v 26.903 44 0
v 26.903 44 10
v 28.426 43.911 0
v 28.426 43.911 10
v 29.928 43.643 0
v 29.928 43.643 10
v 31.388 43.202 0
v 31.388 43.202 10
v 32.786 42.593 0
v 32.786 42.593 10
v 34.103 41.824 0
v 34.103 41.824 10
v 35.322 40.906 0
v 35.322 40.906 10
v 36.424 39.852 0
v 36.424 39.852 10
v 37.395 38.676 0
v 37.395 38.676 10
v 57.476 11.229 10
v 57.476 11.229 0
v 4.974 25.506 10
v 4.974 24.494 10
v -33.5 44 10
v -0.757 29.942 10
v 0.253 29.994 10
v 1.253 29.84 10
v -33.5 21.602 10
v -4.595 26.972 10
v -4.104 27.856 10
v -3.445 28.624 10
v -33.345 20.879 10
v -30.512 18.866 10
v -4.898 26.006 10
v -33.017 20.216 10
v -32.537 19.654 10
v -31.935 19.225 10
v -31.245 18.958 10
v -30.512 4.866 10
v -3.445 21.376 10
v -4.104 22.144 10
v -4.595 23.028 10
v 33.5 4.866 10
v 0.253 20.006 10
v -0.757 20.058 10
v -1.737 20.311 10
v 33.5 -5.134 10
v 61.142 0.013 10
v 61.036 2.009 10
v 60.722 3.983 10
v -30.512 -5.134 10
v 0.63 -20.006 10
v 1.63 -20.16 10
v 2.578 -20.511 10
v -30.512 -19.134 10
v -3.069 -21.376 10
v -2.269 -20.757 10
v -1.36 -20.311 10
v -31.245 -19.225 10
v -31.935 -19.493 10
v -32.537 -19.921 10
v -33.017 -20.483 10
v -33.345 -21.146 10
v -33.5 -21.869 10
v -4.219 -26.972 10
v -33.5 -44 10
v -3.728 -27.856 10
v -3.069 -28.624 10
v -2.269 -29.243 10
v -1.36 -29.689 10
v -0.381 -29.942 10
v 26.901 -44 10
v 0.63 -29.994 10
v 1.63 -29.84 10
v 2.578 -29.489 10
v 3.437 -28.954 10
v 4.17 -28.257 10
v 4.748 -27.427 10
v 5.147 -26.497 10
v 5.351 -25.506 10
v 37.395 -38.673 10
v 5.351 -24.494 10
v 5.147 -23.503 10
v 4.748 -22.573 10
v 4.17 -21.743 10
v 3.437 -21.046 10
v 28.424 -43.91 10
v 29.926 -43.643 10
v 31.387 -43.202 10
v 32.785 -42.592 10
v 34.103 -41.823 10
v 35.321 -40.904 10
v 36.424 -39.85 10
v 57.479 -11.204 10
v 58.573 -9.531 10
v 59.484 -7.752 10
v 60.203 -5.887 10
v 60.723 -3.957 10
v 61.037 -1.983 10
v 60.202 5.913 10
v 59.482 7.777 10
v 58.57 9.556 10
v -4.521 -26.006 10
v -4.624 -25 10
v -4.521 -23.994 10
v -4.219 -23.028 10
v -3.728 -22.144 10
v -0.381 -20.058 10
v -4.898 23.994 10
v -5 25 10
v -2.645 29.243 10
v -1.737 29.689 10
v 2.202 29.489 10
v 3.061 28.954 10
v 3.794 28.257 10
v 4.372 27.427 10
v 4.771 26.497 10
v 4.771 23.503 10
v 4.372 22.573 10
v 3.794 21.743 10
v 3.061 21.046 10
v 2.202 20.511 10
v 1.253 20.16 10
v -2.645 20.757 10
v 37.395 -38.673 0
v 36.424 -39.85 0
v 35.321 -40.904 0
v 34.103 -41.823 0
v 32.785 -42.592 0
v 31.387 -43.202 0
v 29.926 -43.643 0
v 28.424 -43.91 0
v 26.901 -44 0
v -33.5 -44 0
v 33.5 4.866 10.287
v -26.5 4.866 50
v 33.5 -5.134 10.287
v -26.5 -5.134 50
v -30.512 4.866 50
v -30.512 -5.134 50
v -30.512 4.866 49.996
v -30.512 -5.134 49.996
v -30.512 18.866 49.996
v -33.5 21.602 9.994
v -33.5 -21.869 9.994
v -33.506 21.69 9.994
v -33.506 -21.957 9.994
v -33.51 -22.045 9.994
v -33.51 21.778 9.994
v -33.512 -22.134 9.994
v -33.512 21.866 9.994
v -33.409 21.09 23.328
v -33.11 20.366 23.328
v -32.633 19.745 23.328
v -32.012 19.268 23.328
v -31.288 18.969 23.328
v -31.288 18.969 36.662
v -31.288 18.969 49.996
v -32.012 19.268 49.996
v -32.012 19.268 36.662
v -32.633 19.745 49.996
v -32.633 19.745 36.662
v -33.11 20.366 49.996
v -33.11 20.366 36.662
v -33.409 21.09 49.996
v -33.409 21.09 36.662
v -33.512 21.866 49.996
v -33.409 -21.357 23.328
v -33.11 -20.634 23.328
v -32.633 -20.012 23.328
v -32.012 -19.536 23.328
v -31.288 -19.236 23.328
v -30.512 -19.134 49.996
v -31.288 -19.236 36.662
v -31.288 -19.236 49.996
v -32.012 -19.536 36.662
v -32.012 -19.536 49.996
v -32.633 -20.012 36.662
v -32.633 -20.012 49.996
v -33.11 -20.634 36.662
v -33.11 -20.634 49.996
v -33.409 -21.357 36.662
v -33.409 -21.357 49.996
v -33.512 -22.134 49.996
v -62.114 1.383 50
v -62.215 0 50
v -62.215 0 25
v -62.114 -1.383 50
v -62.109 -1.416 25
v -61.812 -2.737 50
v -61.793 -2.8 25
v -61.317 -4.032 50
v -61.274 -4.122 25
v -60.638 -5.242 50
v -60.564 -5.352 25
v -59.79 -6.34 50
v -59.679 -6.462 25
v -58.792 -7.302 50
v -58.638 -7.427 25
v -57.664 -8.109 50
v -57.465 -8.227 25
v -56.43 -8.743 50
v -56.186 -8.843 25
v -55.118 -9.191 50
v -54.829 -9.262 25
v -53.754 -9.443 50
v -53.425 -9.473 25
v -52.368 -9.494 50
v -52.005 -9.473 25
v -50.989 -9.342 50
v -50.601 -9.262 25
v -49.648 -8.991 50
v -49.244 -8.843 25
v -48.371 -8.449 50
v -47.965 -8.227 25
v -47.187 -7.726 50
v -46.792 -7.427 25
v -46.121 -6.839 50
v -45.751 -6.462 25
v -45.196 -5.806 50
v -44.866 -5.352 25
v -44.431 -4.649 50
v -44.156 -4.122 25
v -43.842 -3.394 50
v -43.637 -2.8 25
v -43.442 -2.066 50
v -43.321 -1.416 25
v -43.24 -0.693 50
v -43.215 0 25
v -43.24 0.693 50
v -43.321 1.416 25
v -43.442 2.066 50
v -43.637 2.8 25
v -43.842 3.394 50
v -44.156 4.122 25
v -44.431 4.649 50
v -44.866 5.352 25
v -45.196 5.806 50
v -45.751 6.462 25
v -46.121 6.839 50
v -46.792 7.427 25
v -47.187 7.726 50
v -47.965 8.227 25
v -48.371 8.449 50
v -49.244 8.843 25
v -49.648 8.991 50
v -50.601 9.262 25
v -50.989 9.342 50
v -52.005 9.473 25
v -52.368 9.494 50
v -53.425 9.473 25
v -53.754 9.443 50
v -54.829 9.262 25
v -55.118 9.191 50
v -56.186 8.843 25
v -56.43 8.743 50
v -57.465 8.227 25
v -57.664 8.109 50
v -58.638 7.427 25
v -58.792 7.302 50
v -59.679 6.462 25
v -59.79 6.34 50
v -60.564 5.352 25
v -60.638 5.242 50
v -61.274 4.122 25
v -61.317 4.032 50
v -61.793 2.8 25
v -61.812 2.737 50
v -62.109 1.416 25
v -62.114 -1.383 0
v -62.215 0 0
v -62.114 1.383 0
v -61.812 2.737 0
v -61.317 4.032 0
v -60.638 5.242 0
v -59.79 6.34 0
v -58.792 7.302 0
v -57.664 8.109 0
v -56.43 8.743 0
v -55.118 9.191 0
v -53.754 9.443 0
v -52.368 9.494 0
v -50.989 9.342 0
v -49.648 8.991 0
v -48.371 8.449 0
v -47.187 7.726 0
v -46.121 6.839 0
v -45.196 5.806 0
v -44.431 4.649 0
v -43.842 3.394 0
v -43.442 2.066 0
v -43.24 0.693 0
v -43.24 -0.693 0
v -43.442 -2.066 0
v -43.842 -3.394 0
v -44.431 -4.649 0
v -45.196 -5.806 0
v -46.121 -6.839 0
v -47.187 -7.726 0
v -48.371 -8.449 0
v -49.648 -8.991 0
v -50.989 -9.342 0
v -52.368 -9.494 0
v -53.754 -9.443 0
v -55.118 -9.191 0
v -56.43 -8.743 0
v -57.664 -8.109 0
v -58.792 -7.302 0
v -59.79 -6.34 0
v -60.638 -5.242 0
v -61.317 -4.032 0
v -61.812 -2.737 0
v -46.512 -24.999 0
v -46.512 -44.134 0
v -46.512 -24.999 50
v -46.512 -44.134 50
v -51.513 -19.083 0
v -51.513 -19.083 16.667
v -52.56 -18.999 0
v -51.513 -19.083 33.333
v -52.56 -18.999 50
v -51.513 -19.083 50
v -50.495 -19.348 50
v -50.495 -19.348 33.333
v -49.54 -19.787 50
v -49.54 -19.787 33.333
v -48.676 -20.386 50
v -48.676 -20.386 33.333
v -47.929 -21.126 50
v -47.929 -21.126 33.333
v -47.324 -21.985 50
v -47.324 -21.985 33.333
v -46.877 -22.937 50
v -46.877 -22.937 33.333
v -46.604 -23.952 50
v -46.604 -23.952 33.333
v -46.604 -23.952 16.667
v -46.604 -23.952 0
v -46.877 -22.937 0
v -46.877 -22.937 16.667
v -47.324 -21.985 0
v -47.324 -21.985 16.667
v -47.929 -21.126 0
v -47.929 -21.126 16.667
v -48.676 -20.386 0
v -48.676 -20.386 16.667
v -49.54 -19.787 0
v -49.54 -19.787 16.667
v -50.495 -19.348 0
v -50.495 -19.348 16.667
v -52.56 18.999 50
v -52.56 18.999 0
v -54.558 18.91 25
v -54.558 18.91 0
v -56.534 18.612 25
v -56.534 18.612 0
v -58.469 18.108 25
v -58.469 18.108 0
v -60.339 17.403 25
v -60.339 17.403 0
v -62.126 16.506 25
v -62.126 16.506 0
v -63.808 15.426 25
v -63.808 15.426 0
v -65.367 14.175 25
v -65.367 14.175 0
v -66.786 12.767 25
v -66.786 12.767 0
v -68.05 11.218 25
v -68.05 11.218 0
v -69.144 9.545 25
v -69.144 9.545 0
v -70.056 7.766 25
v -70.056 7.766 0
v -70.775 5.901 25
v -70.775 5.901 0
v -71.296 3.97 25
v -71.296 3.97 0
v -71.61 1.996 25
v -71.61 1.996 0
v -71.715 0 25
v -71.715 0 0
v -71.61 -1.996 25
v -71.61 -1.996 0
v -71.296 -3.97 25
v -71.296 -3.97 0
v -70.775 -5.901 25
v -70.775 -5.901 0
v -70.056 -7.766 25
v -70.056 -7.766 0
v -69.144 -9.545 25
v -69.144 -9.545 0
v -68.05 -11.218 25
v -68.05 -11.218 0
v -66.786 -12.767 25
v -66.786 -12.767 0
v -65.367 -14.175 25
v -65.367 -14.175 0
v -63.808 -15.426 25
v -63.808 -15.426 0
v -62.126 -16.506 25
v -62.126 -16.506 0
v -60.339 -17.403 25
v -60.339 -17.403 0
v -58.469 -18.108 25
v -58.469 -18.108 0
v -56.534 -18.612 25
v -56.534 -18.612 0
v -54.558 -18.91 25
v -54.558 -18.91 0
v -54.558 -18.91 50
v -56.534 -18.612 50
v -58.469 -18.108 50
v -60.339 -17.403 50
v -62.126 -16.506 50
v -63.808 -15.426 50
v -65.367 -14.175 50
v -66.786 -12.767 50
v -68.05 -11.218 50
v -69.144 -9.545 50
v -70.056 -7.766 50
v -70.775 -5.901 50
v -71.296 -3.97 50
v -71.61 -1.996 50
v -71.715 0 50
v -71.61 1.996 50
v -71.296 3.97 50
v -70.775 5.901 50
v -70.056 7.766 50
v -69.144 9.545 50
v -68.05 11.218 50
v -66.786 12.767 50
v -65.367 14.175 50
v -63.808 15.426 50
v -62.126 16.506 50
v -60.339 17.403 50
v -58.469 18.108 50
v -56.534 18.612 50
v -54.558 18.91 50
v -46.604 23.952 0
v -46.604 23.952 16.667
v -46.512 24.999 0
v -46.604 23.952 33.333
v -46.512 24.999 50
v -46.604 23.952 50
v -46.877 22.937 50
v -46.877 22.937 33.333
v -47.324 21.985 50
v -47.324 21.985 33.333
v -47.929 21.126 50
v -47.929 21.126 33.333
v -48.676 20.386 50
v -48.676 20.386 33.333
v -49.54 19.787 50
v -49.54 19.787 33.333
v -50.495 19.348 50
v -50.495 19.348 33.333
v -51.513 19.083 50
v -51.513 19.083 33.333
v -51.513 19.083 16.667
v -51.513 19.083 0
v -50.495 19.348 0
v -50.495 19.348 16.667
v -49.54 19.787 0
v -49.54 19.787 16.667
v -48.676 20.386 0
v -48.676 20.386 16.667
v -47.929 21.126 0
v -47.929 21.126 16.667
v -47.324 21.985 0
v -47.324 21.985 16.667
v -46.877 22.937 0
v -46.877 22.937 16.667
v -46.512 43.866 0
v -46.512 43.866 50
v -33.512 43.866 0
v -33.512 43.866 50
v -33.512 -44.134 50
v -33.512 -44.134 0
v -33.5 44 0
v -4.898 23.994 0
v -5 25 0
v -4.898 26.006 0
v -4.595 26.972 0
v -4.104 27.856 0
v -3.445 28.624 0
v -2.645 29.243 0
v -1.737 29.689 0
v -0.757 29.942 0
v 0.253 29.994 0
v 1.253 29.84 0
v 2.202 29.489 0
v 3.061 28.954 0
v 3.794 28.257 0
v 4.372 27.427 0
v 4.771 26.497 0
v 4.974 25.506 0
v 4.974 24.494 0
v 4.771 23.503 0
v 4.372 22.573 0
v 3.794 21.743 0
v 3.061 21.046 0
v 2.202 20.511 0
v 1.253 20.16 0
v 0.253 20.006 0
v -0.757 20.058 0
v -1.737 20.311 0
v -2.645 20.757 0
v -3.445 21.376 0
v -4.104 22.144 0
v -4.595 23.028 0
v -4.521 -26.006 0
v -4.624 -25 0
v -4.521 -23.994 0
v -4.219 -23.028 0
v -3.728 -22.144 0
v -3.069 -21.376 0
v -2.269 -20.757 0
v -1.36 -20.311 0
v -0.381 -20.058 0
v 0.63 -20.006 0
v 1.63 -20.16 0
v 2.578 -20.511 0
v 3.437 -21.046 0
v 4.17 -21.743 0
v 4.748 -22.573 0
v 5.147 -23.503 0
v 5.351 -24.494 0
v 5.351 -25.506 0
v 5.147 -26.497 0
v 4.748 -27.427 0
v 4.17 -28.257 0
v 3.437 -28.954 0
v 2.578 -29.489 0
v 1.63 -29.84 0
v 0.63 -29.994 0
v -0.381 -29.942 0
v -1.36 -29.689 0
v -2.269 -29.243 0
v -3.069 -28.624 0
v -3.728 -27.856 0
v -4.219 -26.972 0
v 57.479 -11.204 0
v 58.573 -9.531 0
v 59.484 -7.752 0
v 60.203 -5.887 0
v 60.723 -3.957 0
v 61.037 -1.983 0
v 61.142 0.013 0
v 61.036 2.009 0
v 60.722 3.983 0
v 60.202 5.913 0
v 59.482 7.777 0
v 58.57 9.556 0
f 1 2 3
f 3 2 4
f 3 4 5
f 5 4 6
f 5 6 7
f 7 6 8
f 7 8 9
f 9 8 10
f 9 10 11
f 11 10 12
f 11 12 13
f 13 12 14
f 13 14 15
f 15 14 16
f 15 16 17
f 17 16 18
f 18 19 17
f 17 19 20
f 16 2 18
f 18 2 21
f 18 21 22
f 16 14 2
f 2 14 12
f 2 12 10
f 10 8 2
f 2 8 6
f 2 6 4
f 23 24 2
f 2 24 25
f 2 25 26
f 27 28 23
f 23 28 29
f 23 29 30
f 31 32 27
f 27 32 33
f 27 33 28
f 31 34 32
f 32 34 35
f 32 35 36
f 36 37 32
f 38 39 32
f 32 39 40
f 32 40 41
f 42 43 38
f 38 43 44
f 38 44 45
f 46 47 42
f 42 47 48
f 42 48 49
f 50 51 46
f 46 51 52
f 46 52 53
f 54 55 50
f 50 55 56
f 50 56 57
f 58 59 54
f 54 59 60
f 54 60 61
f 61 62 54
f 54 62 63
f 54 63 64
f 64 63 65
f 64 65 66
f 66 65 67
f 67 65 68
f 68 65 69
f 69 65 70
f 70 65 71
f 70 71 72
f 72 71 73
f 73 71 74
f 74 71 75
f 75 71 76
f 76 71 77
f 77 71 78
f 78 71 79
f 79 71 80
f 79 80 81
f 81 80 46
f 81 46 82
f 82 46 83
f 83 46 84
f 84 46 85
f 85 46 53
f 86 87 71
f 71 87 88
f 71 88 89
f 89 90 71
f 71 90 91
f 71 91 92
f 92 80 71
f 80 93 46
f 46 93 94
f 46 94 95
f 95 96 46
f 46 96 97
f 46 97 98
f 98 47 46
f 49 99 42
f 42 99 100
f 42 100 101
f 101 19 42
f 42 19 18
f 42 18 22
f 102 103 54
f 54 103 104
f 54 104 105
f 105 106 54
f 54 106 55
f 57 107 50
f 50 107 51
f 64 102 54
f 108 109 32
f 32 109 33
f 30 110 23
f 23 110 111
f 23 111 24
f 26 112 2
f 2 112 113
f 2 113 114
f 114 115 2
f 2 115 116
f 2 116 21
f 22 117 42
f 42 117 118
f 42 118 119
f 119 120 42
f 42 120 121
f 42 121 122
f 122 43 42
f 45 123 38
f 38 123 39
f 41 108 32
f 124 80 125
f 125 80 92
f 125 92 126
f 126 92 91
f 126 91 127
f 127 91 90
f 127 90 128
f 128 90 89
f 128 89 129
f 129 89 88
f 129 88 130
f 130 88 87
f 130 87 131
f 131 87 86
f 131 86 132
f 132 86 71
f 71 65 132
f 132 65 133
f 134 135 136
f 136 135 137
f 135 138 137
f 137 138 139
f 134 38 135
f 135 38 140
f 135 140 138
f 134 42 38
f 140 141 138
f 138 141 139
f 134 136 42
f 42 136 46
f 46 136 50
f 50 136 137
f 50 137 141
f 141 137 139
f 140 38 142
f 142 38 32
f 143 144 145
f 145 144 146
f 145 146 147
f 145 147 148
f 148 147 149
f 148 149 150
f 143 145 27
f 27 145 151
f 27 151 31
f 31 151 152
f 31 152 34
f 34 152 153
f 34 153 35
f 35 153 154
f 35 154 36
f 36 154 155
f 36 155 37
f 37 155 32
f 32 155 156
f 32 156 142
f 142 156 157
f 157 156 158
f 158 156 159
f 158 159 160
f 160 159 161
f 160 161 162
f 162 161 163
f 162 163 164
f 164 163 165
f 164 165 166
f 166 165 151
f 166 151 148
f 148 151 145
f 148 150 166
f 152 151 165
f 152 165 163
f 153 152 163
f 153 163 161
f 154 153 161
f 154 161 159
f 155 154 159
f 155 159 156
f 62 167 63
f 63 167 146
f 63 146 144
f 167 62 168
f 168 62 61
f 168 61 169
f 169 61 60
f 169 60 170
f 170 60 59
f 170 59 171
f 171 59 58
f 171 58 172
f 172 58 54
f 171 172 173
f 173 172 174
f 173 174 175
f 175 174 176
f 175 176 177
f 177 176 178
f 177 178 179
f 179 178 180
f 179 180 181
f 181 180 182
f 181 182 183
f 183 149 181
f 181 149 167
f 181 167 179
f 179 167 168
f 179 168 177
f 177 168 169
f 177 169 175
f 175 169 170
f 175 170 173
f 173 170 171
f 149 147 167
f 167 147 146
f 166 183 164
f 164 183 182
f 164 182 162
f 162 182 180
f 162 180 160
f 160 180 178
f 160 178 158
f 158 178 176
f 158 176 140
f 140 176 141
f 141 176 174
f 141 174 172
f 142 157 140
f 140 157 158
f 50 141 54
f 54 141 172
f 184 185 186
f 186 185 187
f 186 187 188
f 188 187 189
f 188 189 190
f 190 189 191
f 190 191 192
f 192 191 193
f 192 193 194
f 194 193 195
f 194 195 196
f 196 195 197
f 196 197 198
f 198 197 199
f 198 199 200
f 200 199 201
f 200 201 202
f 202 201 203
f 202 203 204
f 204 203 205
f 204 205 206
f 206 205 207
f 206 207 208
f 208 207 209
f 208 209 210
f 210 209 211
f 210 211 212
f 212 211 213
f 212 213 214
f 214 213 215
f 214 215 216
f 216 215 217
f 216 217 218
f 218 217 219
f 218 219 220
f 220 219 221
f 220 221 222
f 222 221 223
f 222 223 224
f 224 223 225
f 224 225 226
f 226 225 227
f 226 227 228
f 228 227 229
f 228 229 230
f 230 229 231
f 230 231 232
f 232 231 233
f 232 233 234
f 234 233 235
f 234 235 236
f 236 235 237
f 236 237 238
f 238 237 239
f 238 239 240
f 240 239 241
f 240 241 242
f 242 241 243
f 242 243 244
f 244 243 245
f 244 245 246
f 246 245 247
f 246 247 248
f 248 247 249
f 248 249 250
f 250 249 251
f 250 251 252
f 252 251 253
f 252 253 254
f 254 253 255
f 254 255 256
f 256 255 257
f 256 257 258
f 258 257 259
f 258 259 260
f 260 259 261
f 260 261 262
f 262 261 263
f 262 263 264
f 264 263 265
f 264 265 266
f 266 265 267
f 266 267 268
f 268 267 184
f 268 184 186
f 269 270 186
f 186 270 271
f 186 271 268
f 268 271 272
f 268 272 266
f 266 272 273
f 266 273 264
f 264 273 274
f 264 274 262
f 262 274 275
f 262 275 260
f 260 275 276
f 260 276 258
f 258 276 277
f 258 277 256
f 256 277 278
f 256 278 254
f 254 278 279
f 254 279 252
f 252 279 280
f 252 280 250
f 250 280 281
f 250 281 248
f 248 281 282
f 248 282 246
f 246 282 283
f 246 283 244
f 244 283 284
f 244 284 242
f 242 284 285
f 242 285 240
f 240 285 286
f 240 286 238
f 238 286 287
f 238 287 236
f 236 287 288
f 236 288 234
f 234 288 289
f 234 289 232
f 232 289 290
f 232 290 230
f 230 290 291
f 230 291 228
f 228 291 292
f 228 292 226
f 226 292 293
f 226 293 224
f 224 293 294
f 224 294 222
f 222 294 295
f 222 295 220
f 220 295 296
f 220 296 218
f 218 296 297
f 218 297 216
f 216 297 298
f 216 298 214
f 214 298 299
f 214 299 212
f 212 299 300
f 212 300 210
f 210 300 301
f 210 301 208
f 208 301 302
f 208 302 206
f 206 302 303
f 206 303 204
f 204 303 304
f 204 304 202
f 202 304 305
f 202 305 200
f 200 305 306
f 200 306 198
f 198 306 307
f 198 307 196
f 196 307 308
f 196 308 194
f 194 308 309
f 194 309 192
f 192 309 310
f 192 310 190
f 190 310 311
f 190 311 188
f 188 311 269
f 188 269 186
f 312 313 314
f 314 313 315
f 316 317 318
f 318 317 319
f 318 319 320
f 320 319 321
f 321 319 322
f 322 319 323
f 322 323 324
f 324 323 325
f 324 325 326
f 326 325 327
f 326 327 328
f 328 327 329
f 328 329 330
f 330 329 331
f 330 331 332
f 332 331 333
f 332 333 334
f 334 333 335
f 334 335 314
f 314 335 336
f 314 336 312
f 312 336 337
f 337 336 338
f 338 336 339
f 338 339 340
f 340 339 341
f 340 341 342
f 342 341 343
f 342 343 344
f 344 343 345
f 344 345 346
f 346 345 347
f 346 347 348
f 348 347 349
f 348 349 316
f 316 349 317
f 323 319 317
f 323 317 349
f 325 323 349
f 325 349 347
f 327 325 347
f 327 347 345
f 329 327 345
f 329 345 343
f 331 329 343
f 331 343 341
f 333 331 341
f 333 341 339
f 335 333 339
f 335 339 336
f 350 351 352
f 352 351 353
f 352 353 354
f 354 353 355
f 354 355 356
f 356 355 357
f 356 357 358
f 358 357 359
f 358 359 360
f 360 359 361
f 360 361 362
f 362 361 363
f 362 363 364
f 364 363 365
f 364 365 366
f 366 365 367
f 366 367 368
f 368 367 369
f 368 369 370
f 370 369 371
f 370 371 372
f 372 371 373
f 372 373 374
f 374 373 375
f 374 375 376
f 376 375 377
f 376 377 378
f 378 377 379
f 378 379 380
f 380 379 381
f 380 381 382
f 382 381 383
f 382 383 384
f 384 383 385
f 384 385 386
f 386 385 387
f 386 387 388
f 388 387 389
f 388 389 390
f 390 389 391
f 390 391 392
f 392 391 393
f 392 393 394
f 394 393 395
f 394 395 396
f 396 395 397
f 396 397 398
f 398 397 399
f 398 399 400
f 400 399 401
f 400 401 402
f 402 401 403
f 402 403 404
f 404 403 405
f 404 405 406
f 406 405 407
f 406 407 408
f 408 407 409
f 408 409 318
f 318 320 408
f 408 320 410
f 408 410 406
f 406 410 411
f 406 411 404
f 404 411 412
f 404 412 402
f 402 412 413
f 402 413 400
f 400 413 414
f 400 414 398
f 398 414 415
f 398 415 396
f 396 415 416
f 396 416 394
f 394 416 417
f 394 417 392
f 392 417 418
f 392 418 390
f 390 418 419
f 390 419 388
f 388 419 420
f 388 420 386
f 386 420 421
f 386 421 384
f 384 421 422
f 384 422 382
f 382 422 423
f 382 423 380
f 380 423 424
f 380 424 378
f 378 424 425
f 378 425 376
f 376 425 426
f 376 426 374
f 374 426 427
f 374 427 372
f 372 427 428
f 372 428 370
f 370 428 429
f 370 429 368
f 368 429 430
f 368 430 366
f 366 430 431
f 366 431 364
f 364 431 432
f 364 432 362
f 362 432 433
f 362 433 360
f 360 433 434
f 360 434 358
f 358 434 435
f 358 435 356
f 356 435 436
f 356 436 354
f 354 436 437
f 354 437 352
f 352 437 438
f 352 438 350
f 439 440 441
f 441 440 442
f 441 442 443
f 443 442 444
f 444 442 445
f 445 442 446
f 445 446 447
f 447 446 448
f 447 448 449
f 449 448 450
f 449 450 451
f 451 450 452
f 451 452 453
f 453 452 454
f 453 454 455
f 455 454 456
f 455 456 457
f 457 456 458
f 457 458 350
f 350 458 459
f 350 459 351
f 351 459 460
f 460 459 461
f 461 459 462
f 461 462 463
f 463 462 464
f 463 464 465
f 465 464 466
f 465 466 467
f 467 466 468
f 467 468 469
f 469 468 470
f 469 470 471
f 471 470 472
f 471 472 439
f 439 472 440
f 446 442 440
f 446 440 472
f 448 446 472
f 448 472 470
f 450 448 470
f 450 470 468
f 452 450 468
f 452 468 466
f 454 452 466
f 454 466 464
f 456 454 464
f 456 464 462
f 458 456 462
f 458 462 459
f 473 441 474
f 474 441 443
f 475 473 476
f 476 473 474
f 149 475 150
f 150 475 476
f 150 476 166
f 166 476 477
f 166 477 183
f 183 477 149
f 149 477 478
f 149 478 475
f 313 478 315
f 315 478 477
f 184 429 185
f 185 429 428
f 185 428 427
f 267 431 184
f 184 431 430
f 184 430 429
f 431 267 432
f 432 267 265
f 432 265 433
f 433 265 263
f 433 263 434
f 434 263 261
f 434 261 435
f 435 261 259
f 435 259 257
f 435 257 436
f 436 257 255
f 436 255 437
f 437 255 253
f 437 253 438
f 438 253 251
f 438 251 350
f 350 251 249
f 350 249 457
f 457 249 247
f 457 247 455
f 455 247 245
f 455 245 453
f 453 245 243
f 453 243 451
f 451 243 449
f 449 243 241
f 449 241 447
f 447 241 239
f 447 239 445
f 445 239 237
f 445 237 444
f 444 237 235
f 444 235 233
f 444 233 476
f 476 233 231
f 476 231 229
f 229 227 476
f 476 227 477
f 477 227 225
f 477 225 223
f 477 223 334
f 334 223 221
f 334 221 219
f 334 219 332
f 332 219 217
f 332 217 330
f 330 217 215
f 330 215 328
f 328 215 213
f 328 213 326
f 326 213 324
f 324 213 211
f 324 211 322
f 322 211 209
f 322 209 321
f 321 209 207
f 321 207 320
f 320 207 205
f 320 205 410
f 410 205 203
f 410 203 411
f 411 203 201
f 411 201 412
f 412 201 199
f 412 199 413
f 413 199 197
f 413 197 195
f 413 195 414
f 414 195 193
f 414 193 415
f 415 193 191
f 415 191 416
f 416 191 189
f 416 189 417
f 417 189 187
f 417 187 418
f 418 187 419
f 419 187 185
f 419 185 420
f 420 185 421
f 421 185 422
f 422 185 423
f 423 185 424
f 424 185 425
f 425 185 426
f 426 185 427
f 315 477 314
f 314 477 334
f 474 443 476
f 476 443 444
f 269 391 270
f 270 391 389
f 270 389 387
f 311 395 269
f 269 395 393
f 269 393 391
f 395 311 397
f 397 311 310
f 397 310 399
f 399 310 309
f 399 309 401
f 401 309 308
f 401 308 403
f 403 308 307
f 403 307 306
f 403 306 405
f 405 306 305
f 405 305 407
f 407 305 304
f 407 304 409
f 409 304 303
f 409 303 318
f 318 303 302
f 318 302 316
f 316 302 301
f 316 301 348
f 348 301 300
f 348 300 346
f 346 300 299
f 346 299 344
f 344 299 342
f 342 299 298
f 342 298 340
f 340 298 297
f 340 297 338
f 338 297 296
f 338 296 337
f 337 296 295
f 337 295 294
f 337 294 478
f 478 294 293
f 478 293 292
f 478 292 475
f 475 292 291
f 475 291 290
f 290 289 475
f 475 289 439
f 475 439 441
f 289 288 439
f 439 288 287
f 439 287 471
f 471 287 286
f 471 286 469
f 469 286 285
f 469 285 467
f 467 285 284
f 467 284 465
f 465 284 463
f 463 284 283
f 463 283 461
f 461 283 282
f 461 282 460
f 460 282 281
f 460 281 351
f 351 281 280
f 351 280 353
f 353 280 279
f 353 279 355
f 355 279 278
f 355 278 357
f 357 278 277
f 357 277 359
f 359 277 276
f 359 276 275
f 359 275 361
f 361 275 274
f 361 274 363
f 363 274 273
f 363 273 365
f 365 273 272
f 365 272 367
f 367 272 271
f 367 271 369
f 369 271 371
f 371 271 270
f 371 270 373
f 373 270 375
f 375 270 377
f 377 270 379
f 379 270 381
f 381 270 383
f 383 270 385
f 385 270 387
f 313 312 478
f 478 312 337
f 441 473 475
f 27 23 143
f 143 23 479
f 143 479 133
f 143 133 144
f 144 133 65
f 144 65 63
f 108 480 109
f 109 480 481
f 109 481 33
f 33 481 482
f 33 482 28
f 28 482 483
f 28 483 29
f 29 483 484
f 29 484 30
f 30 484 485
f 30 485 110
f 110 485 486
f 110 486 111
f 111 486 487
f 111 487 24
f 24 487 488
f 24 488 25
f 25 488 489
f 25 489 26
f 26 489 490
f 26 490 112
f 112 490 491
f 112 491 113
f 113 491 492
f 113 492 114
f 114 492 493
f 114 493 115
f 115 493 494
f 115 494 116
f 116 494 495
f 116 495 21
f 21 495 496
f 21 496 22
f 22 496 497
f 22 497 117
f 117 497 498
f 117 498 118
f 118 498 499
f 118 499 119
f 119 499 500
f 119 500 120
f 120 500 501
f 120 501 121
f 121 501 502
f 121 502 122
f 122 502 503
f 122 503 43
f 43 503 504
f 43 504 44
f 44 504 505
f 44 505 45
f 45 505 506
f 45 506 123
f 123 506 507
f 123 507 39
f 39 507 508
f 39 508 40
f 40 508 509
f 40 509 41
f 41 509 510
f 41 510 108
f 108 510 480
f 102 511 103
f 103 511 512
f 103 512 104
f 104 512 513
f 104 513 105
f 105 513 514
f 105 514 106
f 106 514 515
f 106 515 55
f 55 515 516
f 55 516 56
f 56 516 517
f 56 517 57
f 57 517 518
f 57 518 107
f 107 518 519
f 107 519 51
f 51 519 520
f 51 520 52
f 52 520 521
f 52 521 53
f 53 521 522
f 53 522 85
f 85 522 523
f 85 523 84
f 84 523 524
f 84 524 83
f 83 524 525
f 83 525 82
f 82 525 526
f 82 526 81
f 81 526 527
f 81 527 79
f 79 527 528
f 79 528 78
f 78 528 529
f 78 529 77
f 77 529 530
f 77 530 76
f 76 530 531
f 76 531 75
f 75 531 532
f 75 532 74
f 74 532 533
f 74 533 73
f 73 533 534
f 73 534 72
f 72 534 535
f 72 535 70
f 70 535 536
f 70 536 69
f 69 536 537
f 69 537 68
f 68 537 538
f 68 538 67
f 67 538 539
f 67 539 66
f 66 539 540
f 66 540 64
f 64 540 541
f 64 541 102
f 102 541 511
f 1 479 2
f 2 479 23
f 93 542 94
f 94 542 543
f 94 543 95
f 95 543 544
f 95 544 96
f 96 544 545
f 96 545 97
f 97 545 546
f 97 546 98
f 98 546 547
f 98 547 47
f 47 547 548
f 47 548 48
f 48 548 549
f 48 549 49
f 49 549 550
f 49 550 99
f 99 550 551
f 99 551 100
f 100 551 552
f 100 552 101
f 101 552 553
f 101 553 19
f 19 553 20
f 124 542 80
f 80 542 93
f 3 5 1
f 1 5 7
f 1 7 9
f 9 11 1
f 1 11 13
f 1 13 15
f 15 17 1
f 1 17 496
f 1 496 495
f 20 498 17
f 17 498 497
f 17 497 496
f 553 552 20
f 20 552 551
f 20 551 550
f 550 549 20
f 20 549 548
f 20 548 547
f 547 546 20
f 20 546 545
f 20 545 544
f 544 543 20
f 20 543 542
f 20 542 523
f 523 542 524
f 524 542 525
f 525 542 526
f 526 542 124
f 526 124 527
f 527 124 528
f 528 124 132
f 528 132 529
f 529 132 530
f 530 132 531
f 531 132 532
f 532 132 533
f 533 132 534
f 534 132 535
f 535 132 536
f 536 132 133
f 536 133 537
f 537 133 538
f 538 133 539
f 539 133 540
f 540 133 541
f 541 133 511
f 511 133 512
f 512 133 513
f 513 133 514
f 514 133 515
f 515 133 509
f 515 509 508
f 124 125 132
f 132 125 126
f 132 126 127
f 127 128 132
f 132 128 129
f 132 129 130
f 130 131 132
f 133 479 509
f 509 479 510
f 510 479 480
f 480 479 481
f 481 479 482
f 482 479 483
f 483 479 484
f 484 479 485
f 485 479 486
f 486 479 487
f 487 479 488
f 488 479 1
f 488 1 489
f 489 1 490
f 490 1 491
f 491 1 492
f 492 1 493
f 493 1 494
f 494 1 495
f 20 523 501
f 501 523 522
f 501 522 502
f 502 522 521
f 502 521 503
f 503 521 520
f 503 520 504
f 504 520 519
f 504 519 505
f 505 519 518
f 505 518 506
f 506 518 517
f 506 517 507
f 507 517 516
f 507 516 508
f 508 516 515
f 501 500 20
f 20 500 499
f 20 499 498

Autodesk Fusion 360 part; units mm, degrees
sketch "Sketch3" plane through (0, 0, 0) normal (0, 0, 1) x (1, 0, 0)
  line L0 (33.5, -44) -> (-33.5, -44)
  line L1 (-33.5, -44) -> (-33.5, 44)
  line L2 (-33.5, 44) -> (33.5, 44)
  line L3 (33.5, -44) -> (-33.5, 44) construction
  line L4 (-33.5, -44) -> (33.5, 44) construction
  circle A0 centre (0, 25) radius 5
  circle A1 centre (0.3763, -25) radius 5
  line L5 (33.5, -44) -> (57.4793, -11.2043)
  line L6 (57.476, 11.2288) -> (33.5, 44)
  arc A2 (57.4793, -11.2043) -> (57.476, 11.2288) centre (42.1418, 0.01) ccw
  line L7 (33.5, 44) -> (33.5, -44)
  dimension "d5" = 67
  dimension "d6" = 88
  dimension "d7" = 10
  dimension "d8" = 10
  dimension "d9" = 50
  dimension "d10" = 19
  dimension "d55" = 19
extrude "Extrude1" add sketch "Sketch3" along normal blind 10 contours L0 L1 L2 L7 makes body 1
sketch "Sketch4" plane through (0, 0, 0) normal (0, 0, 1) x (1, 0, 0)
  line L0 (-33.5117, 43.8664) -> (-46.5117, 43.8664)
  line L1 (-46.5117, -44.1336) -> (-33.5117, -44.1336)
  line L2 (-33.5117, -44.1336) -> (-33.5117, 43.8664)
  line L3 (-46.5117, 43.8664) -> (-46.5117, 24.9992)
  line L4 (-46.5117, -24.9992) -> (-46.5117, -44.1336)
  arc A0 (-52.5605, 18.9994) -> (-52.5605, -18.9994) centre (-52.715, 0) ccw
  circle A1 centre (-52.715, 0) radius 9.5
  arc A2 (-52.5605, 18.9994) -> (-46.5117, 24.9992) centre (-52.5117, 24.9992) ccw
  arc A3 (-46.5117, -24.9992) -> (-52.5605, -18.9994) centre (-52.5117, -24.9992) ccw
  dimension "d16" = 19
  dimension "d17" = 19
  dimension "d18" = 6
  dimension "d19" = 6
extrude "Extrude2" add sketch "Sketch4" along normal blind 50 separate body makes body 2
sketch "Sketch5" plane through (-33.5117, 0, 0) normal (1, 0, 0) x (0, 1, 0)
  line L0 (-44.1336, 0) -> (43.8664, 0)
  line L1 (43.8664, 0) -> (43.8664, 50)
  line L2 (43.8664, 50) -> (-44.1336, 50)
  line L3 (-44.1336, 50) -> (-44.1336, 0)
  line L4 (-19.1336, 49.9963) -> (18.8664, 49.9963)
  line L5 (18.8664, 49.9963) -> (18.8664, 9.9944)
  line L6 (18.8664, 9.9944) -> (-19.1336, 9.9944)
  line L7 (-19.1336, 9.9944) -> (-19.1336, 49.9963)
  dimension "d22" = 38
  dimension "d23" = 25
extrude "Extrude4" add sketch "Sketch5" along normal blind 3 contours L4 L5 L6 L7 bodies 2
fillet "Fillet2" radius 3 1 edges at (-33.5117, -19.1336, 29.9954) on bodies 2
fillet "Fillet3" radius 3 1 edges at (-33.5117, 18.8664, 29.9954) on bodies 2
extrude "Extrude3" cut sketch "Sketch5" along normal blind 3 contours L4 L5 L6 L7 bodies 1
sketch "Sketch8" plane through (0, 0, 10) normal (0, 0, 1) x (-1, 0, 0)
  line L0 (30.5117, 19.1336) -> (33.5, 19.1336)
  line L1 (33.5, 19.1336) -> (33.5, 44)
  line L2 (33.5, 44) -> (-33.5, 44)
  line L3 (-33.5, -44) -> (33.5, -44)
  line L4 (33.5, -44) -> (33.5, -18.8664)
  line L5 (33.5, -18.8664) -> (30.5117, -18.8664)
  line L6 (30.5117, -18.8664) -> (30.5117, 19.1336)
  circle A0 centre (-0.3763, 25) radius 5
  circle A1 centre (0, -25) radius 5
  line L7 (30.5117, -4.8664) -> (-33.5, -4.8664)
  line L8 (-33.5, -4.8664) -> (-33.5, 5.1336)
  line L9 (-33.5, 5.1336) -> (30.5117, 5.1336)
  line L10 (30.5117, 5.1336) -> (30.5117, -4.8664)
  line L11 (-33.5, 44) -> (-33.5, -44)
  dimension "d38" = 14
  dimension "d39" = 10
extrude "Extrude5" add sketch "Sketch8" along normal blind 40 contours L6 L7 L8 L9 L10 L11 bodies 1 2
chamfer "Chamfer1" distance 60 angle 33.5 1 edges at (33.5, -0.1336, 50) measured on face at (12.1628, -1.8003, 50) on bodies 1
extrude "Extrude7" add sketch "Sketch3" along normal blind 10 contours L5 L6 A2 L7 bodies 1
fillet "Fillet8" radius 13 1 edges at (33.5, -44, 5) on bodies 1
fillet "Fillet9" radius 13 1 edges at (33.5, 44, 5) on bodies 1
equation "d10 = ( ( 88 - 50 ) / 2 ) * 1 mm"
